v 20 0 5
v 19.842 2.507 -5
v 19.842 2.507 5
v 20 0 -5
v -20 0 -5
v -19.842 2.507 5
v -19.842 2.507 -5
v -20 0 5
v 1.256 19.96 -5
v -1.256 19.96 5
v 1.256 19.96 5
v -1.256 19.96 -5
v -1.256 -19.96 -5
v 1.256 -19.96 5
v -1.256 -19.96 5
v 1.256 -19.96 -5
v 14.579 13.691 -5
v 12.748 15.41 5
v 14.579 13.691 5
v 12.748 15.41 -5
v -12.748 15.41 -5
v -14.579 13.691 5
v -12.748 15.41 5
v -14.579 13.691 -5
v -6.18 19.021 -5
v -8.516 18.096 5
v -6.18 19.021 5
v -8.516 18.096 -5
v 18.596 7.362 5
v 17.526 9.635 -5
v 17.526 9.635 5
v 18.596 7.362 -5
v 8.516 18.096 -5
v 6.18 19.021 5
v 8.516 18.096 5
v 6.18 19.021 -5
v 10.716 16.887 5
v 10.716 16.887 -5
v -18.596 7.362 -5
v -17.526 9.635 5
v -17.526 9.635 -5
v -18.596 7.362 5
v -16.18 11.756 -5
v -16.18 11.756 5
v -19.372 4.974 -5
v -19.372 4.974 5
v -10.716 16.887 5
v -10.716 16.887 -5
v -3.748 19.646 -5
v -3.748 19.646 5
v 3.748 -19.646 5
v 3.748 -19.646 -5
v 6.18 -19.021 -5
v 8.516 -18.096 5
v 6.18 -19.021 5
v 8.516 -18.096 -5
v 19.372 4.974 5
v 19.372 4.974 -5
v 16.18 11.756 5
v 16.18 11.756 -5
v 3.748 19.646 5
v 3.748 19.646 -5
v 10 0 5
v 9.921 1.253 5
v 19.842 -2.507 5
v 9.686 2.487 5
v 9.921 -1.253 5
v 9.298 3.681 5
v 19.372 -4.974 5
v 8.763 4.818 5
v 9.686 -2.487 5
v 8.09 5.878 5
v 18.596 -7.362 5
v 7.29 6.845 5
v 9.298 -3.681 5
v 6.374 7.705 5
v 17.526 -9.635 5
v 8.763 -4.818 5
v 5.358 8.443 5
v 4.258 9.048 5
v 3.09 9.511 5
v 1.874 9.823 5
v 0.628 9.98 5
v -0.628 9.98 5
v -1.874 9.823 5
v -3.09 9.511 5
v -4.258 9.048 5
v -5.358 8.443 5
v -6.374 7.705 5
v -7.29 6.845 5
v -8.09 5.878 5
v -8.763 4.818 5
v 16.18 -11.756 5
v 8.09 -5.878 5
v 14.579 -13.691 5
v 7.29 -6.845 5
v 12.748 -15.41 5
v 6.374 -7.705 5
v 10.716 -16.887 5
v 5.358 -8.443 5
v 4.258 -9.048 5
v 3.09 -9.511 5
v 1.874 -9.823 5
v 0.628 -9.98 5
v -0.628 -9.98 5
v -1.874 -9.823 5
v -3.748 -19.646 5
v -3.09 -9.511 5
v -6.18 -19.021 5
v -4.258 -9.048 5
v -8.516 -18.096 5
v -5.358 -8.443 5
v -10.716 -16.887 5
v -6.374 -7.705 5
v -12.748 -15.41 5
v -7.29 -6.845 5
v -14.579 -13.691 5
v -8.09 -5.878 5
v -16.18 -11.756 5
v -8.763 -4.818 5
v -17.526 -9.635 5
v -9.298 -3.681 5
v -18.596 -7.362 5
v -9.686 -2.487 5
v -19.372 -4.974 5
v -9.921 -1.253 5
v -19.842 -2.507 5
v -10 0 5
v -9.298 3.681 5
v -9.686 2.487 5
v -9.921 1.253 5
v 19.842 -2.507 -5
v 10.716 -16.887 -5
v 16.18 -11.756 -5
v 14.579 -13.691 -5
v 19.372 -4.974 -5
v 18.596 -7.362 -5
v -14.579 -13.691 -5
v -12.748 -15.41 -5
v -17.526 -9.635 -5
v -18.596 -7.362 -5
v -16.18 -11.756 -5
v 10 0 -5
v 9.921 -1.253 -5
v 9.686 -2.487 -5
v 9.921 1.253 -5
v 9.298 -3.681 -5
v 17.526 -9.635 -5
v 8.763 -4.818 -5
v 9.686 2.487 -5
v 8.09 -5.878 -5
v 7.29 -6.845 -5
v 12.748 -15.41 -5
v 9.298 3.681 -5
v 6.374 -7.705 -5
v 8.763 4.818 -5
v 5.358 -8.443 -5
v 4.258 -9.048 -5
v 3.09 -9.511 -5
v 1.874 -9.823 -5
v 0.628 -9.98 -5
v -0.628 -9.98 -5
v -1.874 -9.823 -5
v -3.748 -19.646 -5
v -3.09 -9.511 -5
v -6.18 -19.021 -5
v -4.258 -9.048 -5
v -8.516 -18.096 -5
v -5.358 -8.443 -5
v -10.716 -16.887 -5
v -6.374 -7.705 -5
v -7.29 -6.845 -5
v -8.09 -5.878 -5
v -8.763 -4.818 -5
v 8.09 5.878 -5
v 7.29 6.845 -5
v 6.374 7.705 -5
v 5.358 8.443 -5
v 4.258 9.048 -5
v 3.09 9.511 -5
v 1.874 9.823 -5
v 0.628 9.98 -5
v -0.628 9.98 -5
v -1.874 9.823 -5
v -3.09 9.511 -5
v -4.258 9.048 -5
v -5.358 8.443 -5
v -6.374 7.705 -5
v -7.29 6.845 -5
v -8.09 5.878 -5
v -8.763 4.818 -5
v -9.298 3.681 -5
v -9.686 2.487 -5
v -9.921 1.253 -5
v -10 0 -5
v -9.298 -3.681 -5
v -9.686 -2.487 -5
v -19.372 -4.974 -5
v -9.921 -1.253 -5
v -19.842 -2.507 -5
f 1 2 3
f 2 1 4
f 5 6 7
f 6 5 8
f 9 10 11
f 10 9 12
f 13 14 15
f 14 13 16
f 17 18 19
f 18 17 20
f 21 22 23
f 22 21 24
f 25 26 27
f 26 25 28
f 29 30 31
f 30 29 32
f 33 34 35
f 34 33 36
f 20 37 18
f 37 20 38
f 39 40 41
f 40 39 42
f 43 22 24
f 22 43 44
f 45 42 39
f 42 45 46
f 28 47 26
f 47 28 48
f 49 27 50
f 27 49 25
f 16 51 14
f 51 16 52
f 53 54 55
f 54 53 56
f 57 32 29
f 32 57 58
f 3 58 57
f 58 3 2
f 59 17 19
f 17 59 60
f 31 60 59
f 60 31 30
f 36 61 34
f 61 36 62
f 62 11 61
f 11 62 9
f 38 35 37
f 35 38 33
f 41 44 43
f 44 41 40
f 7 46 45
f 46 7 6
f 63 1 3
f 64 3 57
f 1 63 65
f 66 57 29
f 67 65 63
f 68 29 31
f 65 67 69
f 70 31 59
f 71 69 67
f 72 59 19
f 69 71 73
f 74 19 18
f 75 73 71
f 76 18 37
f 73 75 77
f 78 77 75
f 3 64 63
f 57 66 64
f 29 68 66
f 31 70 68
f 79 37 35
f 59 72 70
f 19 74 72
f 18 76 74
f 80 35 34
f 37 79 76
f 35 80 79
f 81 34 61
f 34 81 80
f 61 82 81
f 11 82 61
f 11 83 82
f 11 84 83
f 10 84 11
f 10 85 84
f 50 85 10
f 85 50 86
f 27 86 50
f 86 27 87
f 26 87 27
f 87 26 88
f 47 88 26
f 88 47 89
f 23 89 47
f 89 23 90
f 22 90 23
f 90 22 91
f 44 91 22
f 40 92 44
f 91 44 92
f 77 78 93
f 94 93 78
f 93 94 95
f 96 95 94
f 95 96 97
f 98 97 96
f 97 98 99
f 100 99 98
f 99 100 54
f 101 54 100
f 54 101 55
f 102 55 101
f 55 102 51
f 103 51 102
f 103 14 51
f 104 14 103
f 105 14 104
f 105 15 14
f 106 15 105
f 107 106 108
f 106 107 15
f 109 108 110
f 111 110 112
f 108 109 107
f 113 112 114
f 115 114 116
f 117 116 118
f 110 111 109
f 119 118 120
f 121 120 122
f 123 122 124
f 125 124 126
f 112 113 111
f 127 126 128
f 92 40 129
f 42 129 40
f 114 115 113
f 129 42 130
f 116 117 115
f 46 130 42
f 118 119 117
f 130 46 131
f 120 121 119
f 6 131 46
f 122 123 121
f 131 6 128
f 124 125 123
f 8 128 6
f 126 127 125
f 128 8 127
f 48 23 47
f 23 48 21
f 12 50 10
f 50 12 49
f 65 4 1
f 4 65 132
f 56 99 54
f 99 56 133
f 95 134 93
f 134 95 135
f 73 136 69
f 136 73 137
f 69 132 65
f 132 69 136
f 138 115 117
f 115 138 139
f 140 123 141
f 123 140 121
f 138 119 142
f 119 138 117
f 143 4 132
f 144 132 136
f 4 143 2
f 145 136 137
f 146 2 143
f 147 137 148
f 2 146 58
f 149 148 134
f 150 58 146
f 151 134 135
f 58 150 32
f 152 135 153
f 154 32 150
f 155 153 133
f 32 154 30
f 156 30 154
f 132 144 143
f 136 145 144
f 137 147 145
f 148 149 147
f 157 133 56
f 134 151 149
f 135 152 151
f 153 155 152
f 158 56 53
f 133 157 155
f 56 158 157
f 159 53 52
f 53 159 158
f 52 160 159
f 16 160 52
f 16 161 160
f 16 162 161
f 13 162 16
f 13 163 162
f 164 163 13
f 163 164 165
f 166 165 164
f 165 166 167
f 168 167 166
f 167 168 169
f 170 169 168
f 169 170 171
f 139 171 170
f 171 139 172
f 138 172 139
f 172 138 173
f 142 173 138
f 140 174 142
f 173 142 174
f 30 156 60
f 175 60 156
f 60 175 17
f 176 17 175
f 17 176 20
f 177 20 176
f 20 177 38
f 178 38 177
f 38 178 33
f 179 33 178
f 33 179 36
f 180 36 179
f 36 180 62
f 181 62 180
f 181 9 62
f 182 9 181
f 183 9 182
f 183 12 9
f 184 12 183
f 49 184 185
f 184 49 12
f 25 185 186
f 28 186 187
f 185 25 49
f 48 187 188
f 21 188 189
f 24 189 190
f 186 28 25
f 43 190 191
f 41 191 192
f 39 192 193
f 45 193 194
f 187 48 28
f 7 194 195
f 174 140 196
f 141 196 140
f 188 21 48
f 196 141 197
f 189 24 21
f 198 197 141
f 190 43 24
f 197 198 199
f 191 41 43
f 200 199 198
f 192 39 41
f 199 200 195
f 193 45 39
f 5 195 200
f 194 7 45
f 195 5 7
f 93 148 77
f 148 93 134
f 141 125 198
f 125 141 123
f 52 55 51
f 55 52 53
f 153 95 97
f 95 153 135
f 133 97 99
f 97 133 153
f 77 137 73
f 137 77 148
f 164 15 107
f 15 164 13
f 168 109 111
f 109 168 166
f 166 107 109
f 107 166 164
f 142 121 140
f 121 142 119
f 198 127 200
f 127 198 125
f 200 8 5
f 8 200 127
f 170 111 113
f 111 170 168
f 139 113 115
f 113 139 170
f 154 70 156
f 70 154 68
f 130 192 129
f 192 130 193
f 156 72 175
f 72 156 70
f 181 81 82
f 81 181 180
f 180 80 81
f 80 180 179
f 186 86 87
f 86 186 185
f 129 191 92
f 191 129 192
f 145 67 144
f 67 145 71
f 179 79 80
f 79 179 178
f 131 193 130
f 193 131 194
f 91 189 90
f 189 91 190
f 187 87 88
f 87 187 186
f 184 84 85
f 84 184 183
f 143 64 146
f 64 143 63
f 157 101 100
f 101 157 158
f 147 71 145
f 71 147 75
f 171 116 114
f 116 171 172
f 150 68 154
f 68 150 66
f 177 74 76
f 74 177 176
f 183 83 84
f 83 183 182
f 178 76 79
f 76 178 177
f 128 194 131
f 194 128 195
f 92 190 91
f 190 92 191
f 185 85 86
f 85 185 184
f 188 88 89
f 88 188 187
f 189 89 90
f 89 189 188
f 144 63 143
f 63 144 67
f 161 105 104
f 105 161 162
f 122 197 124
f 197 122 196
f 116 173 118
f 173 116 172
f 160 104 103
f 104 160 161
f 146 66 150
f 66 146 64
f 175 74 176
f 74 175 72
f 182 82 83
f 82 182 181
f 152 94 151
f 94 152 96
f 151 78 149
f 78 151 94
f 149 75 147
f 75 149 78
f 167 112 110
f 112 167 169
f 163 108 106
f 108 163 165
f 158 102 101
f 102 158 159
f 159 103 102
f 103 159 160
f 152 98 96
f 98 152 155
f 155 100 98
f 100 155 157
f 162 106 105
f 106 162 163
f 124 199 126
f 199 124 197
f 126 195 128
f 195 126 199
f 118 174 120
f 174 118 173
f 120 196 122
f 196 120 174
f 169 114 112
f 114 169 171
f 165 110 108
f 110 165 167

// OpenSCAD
$fn = 50;


difference() {
	union() {
		translate(v = [0, 0, -5.0000000000]) {
			cylinder(h = 10, r = 20.0000000000);
		}
	}
	union() {
		translate(v = [0, 0, -100.0000000000]) {
			cylinder(h = 200, r = 10);
		}
	}
}
